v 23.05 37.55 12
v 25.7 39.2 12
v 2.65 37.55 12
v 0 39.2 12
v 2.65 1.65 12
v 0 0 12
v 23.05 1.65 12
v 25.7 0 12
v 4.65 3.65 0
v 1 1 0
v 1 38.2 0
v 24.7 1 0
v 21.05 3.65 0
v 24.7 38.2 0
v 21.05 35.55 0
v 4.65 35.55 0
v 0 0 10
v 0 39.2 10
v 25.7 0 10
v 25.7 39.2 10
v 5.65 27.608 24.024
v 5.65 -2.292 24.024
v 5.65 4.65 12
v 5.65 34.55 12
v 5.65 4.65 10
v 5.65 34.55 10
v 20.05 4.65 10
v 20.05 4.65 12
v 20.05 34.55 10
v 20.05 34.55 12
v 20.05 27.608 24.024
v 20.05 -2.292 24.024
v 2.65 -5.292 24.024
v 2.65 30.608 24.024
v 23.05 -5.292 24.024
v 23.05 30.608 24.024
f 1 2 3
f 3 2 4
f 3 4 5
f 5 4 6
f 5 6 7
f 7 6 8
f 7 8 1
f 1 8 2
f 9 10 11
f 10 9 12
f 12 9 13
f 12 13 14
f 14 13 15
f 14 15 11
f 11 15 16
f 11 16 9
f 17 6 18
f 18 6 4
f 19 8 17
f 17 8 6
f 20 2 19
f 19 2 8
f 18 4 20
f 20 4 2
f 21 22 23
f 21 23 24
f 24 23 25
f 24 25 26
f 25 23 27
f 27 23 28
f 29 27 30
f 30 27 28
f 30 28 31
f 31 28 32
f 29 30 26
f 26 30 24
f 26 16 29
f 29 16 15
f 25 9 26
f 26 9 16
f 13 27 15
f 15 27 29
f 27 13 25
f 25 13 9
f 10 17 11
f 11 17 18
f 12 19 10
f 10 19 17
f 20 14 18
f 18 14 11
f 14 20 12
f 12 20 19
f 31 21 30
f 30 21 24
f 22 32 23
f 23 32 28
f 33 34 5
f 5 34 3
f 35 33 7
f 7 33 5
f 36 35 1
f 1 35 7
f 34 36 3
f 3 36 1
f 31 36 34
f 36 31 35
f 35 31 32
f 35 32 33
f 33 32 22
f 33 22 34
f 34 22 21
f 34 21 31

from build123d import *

# Parameters (mm, degrees)
SKETCH3_W           = 25.7
SKETCH3_H           = 39.2
SKETCH3_W_2         = 14.4
SKETCH3_H_2         = 29.9
BOSS_EXTRUDE2_DEPTH = 12
CHAMFER1_SIZE       = 1
CHAMFER1_SIZE2      = 10
SKETCH4_W           = 20.4
SKETCH4_H           = 35.9
SKETCH4_W_2         = 14.4
SKETCH4_H_2         = 29.9


with BuildPart() as part:
    # Sketch3 → Boss-Extrude2 (new body)
    with BuildSketch(Plane.XY):
        with Locations((12.85, 19.6)):
            Rectangle(SKETCH3_W, SKETCH3_H)
        with Locations((12.85, 19.6)):
            Rectangle(SKETCH3_W_2, SKETCH3_H_2, mode=Mode.SUBTRACT)
    extrude(amount=BOSS_EXTRUDE2_DEPTH)

    # Chamfer1
    chamfer1_edges = [part.edges().sort_by_distance(p)[0] for p in [
        (5.65, 19.6, 0),
        (12.85, 4.65, 0),
        (20.05, 19.6, 0),
        (12.85, 34.55, 0),
        (12.85, 39.2, 0),
        (25.7, 19.6, 0),
        (12.85, 0, 0),
        (0, 19.6, 0),
    ]]
    chamfer1_side = [part.faces().sort_by_distance(p)[0] for p in [
        (12.85, 0.468735533, 0),
    ]]
    chamfer(chamfer1_edges, length=CHAMFER1_SIZE, length2=CHAMFER1_SIZE2, reference=chamfer1_side[0])

    # Sweep1: sweep along a path in Sketch6
    with BuildLine(Plane.ZY.offset(-12.85)) as sweep1_path:
        Line((12, 1.65), (24.024266767, -5.292213655))
    # Sketch4 → Sweep1 (sweep)
    with BuildSketch(Plane.XY.offset(12)):
        with Locations((12.85, 19.6)):
            Rectangle(SKETCH4_W, SKETCH4_H)
        with Locations((12.85, 19.6)):
            Rectangle(SKETCH4_W_2, SKETCH4_H_2, mode=Mode.SUBTRACT)
    sweep(path=sweep1_path.line)


solid = part.part
